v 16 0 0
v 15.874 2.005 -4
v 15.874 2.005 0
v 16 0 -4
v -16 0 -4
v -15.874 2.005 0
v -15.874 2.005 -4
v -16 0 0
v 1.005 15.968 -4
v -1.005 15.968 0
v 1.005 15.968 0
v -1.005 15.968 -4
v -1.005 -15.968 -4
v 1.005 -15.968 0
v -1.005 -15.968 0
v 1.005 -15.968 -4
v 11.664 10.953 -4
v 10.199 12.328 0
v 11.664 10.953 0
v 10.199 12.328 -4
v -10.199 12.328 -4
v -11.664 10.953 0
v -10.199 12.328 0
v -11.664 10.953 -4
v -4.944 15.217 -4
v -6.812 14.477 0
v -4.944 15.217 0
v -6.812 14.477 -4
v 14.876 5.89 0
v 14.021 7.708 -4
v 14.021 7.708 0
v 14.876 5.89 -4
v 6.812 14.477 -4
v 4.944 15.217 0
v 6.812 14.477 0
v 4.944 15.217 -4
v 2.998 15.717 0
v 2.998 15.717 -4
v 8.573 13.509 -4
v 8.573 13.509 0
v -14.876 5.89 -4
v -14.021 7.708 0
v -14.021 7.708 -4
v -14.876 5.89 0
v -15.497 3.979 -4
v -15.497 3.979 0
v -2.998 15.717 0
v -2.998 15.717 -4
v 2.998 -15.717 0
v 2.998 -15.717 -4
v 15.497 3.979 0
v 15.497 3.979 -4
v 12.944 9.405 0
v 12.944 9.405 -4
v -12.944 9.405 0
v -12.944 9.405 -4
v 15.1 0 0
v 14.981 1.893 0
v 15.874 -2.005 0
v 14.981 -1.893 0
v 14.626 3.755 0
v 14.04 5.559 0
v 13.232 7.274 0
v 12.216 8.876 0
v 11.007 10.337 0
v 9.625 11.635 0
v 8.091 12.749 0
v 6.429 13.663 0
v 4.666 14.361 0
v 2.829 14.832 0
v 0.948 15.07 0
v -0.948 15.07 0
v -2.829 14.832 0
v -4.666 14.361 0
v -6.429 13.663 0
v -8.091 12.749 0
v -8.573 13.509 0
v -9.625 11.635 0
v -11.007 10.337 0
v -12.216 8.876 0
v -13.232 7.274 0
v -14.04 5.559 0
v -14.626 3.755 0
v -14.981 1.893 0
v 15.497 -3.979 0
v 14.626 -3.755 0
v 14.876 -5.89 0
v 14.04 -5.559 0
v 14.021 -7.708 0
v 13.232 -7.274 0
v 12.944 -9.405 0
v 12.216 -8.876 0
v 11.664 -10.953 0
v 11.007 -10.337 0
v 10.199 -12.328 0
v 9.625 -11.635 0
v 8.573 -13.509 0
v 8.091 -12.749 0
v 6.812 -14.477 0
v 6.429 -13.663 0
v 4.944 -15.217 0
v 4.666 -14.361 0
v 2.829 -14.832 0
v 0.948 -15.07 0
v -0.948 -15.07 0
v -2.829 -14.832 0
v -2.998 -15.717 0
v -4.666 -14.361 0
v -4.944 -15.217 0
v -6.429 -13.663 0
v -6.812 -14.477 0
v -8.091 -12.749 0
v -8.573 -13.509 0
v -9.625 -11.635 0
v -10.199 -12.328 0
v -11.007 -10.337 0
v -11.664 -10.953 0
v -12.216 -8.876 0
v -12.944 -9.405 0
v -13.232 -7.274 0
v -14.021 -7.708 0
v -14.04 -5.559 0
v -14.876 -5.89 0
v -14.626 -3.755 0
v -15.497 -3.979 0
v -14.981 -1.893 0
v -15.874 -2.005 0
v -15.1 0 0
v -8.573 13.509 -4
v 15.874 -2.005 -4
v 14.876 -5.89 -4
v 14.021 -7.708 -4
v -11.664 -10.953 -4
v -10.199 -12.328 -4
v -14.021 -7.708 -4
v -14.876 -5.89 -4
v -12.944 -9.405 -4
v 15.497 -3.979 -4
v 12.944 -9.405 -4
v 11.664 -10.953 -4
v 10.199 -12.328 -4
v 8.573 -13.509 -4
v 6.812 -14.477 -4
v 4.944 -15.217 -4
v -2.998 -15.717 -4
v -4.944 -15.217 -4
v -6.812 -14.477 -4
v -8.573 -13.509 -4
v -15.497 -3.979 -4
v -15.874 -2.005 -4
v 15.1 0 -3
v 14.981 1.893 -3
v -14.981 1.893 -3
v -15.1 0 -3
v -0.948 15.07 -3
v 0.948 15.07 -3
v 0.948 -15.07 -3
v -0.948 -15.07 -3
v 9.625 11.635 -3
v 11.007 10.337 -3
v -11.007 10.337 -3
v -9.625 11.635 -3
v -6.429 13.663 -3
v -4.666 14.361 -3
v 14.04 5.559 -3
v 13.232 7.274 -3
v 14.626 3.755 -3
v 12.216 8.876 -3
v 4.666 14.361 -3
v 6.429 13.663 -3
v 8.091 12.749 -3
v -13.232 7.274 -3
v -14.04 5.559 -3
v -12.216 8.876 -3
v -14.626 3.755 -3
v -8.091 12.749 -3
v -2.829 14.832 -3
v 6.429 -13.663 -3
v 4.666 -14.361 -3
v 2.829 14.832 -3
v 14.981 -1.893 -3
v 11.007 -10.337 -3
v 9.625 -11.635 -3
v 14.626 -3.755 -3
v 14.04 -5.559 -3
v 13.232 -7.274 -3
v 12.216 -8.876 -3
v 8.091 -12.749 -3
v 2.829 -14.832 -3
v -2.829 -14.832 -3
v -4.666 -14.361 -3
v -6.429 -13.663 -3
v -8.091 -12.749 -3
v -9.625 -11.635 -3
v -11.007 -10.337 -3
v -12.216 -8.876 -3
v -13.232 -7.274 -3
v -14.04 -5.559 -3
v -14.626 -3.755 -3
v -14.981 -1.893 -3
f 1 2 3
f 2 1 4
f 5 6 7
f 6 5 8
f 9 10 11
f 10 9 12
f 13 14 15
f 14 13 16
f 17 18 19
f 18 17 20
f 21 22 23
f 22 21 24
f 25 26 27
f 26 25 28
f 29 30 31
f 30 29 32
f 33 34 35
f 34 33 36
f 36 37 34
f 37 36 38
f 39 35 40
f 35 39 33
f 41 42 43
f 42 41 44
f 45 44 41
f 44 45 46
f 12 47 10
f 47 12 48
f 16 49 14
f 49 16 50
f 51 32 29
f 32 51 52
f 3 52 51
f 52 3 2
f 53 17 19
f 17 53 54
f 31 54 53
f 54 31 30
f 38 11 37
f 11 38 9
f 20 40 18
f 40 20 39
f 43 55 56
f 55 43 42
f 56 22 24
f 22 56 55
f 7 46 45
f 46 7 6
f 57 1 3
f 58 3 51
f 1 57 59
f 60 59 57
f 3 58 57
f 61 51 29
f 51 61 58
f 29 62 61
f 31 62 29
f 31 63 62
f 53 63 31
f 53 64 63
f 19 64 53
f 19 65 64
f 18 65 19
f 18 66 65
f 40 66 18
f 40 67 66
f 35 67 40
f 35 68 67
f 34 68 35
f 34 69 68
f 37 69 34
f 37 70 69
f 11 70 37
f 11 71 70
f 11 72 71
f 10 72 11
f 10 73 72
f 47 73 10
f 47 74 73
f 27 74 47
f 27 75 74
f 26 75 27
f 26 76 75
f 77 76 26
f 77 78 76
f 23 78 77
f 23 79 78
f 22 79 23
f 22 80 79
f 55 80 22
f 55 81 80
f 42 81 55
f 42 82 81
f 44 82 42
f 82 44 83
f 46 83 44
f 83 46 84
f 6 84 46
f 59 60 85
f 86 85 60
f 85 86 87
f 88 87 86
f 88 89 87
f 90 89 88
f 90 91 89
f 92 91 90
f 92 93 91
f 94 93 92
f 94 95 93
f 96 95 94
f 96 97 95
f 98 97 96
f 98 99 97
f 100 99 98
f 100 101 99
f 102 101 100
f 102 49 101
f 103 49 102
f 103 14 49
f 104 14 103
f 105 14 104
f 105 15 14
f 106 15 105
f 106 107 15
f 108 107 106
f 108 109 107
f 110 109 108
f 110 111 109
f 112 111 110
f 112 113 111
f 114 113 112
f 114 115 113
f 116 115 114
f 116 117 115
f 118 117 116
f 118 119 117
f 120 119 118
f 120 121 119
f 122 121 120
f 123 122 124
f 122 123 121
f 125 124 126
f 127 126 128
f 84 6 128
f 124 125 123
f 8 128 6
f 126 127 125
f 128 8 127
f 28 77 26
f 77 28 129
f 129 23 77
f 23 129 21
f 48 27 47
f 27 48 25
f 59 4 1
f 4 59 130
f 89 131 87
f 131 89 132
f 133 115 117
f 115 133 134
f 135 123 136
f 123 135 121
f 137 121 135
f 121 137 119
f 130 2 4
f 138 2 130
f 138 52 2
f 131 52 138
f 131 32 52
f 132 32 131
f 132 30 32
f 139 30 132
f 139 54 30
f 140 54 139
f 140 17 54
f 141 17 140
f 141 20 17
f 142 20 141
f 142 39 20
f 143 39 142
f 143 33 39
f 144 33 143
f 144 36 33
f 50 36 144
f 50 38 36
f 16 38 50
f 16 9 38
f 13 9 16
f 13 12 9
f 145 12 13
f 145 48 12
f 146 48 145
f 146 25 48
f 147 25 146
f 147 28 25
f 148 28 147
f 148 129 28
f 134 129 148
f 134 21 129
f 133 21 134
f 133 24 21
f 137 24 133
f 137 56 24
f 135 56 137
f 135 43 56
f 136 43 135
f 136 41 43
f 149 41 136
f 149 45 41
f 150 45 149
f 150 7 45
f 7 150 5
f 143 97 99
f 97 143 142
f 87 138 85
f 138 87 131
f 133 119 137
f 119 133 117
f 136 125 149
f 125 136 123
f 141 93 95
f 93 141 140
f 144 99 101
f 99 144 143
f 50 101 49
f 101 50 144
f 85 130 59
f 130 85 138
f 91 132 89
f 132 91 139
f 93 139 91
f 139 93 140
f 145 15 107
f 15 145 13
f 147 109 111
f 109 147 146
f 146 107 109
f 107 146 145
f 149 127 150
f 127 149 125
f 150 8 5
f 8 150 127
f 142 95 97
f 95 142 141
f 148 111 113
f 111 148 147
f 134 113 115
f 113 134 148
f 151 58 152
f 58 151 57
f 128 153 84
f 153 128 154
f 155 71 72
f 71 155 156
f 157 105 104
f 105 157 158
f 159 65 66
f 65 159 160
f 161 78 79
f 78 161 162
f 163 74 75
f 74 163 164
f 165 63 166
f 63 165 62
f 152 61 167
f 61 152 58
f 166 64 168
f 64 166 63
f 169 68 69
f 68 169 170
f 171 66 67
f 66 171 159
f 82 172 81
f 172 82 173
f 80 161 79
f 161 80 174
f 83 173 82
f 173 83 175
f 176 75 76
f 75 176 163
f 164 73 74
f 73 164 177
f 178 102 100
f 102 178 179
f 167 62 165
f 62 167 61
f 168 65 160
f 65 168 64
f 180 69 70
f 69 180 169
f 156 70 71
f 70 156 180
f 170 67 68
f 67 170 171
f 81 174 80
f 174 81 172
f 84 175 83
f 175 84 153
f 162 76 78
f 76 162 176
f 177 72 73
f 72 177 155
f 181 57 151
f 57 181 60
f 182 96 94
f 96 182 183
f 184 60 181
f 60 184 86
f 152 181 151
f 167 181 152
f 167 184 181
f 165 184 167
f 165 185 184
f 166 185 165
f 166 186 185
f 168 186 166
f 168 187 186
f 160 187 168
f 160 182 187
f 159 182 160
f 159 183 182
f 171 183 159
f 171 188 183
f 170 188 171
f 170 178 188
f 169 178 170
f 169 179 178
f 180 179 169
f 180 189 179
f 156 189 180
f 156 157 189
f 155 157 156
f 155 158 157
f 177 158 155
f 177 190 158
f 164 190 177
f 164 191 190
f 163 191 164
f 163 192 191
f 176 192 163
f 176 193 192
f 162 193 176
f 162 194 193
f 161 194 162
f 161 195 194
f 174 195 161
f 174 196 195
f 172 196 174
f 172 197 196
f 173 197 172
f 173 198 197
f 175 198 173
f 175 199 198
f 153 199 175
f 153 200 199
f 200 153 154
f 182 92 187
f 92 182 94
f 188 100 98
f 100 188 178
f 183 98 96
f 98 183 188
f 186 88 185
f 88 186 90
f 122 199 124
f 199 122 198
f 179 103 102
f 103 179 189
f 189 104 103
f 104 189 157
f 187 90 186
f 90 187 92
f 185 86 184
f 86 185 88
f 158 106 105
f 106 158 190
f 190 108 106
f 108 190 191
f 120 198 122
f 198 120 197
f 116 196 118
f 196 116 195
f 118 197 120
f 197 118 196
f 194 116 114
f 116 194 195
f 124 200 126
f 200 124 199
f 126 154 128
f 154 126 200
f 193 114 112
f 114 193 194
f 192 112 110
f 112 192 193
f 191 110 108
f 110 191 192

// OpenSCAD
$fn = 50;


difference() {
	union() {
		translate(v = [0, 0, -4.0000000000]) {
			cylinder(h = 4, r = 16.0000000000);
		}
	}
	union() {
		#translate(v = [0, 0, -3.0000000000]) {
			cylinder(h = 3, r = 15.1000000000);
		}
	}
}
